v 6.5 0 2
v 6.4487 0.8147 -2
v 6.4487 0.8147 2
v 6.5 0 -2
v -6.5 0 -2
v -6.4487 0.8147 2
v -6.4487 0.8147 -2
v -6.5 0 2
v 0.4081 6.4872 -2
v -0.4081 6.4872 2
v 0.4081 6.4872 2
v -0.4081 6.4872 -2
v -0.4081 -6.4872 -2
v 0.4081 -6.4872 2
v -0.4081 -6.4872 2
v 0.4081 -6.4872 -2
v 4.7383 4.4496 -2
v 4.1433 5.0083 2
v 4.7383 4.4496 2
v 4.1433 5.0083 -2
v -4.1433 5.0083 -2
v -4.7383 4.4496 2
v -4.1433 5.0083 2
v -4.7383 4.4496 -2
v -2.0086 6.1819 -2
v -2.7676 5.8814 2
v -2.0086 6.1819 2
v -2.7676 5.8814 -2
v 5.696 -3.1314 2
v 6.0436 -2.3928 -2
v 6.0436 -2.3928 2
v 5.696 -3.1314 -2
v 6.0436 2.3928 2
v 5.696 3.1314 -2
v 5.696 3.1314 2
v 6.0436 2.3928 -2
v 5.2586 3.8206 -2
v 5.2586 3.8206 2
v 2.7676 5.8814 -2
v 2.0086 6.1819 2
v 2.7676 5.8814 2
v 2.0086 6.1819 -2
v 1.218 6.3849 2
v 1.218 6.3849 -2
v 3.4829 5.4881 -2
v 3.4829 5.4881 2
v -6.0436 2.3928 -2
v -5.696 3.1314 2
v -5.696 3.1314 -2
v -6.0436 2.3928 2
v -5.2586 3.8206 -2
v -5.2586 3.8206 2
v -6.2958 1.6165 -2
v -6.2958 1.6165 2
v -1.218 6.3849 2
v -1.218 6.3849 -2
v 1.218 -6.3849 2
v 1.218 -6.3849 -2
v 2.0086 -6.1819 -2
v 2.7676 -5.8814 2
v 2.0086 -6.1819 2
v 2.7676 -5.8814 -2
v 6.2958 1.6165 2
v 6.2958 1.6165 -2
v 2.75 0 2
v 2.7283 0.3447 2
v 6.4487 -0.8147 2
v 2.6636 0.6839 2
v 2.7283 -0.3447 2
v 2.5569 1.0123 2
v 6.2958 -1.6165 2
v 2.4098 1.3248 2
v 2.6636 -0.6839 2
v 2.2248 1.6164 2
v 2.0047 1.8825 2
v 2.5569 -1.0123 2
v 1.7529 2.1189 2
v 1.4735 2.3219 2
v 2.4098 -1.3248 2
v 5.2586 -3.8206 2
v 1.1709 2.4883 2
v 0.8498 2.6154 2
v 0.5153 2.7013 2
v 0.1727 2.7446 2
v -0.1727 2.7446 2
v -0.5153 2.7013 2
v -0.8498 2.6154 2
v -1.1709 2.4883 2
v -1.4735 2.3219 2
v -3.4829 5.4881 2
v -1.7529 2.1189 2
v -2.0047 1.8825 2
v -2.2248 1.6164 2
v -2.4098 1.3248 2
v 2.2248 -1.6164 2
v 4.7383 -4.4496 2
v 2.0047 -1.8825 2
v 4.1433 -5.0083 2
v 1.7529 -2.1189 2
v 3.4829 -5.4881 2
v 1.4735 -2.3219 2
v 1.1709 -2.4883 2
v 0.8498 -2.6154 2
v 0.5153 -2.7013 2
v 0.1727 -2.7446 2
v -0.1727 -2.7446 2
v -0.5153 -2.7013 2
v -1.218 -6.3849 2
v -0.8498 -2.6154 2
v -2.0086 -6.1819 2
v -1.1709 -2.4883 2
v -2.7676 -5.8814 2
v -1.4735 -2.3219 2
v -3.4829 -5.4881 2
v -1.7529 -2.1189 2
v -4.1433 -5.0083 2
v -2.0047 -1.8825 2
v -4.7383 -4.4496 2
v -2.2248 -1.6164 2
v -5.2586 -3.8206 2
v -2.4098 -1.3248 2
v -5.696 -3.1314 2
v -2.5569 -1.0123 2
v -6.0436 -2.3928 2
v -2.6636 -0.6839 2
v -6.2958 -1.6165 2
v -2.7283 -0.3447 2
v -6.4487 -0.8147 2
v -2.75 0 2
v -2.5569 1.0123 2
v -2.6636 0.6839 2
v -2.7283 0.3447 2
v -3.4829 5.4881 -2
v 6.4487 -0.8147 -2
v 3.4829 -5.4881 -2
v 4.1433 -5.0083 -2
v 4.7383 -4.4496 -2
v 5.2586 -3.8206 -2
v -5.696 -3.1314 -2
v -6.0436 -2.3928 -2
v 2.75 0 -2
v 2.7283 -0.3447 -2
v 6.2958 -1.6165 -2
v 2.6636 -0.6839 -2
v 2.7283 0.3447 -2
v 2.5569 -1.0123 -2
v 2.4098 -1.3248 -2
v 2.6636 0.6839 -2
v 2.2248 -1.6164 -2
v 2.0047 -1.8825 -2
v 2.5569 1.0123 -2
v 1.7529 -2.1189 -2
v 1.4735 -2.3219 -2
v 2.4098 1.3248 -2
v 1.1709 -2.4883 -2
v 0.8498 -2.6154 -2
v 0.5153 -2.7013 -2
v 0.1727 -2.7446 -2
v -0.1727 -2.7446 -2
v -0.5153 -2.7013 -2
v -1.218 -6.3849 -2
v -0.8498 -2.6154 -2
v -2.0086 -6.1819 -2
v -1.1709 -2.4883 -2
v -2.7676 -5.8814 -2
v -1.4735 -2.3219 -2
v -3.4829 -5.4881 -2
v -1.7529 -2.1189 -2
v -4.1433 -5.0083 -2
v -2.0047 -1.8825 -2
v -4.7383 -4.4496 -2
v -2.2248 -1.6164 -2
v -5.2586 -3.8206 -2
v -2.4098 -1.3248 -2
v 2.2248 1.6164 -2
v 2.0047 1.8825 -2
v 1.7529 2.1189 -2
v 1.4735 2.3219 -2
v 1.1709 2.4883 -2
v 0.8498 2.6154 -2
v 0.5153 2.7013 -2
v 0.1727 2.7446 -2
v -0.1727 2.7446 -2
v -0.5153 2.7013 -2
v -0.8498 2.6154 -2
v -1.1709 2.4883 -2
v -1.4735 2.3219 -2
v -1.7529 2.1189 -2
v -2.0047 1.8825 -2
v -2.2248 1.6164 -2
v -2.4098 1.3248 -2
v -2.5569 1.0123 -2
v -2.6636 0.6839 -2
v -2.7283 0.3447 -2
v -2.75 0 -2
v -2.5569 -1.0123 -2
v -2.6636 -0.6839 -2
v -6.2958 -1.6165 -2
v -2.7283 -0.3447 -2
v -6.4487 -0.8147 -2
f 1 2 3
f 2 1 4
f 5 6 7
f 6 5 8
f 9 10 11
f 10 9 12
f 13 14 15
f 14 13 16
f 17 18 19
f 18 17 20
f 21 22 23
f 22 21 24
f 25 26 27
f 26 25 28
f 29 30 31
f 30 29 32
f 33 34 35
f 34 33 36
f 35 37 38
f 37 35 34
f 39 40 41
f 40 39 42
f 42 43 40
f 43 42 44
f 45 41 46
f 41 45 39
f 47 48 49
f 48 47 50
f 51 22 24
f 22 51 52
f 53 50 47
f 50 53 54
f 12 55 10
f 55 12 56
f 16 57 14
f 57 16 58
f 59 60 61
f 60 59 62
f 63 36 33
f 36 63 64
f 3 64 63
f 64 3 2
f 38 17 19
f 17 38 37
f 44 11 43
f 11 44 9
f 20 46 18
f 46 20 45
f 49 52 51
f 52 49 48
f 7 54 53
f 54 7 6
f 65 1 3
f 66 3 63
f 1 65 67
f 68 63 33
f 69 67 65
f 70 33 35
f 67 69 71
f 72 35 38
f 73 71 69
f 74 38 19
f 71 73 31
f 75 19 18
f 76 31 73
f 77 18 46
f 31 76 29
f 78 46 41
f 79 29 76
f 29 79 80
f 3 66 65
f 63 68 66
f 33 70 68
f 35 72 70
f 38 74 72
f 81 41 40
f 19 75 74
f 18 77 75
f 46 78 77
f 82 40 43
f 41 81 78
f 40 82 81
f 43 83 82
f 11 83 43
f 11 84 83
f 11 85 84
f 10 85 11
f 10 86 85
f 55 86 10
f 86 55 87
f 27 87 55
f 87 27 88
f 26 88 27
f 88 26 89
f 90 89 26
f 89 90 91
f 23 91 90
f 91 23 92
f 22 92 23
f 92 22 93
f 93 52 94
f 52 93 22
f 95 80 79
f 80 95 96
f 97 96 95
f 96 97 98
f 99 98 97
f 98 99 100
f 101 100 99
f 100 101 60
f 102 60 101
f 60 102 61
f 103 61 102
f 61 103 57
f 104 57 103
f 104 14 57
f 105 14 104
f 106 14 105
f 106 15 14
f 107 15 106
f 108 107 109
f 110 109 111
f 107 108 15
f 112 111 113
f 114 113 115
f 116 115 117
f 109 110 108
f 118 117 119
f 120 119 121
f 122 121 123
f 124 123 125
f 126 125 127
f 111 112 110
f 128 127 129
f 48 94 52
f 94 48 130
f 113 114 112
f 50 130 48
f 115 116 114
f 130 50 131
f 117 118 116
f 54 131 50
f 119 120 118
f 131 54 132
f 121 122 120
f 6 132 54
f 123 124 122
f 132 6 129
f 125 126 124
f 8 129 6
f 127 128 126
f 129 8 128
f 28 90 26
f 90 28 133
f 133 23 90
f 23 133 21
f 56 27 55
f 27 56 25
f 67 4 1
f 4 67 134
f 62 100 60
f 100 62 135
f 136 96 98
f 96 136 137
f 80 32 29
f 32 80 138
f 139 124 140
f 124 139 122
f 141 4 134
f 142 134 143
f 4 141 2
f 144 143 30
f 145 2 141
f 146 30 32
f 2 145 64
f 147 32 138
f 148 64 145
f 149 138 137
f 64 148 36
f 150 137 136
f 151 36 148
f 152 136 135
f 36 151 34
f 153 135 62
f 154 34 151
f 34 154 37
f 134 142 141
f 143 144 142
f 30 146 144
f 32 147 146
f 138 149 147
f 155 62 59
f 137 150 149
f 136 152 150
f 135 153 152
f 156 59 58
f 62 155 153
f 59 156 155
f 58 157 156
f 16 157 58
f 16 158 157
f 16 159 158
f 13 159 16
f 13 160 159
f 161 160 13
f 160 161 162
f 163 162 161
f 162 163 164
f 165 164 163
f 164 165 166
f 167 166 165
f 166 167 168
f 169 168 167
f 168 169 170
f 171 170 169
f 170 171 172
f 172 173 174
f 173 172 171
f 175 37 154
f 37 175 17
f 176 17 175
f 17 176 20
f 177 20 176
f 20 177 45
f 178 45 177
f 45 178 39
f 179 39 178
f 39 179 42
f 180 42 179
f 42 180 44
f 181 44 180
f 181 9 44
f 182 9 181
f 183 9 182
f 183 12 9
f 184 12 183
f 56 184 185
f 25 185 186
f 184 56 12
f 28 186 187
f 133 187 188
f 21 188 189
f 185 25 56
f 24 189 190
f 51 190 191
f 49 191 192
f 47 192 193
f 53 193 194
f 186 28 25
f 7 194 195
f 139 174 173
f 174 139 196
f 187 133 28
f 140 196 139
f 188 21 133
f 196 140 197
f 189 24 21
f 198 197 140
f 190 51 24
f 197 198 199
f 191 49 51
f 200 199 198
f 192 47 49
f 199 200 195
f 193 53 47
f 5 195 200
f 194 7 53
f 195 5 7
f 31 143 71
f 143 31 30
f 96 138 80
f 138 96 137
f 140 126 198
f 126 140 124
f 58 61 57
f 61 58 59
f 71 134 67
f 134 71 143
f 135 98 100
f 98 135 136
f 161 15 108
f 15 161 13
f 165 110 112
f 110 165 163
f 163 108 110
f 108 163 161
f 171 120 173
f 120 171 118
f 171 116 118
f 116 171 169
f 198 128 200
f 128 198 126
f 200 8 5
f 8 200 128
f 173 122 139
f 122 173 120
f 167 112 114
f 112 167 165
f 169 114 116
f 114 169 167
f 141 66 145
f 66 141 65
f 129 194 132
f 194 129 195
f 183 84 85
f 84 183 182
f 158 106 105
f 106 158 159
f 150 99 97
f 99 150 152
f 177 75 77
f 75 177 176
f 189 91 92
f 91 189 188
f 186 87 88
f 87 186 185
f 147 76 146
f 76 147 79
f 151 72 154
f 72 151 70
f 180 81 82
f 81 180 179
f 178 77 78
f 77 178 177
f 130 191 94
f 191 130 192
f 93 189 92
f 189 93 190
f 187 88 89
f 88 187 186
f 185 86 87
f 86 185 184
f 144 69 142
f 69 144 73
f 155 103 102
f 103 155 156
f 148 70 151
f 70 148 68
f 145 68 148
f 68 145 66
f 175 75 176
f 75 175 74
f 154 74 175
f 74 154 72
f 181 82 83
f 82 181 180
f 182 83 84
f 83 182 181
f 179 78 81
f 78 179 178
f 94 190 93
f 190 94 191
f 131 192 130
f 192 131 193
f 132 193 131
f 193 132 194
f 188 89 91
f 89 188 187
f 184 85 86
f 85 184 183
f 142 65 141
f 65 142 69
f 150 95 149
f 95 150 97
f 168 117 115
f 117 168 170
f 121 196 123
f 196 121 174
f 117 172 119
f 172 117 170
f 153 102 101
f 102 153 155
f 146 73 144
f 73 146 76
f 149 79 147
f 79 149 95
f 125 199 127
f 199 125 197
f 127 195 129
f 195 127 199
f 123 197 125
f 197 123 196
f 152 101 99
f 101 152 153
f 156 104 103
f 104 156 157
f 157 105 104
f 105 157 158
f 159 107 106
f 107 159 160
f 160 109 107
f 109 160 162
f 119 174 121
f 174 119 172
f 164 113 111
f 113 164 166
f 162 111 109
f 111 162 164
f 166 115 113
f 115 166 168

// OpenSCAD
$fn = 50;


difference() {
	union() {
		translate(v = [0, 0, -2.0000000000]) {
			cylinder(h = 4, r = 6.5000000000);
		}
	}
	union() {
		translate(v = [0, 0, -100.0000000000]) {
			cylinder(h = 200, r = 2.7500000000);
		}
	}
}
